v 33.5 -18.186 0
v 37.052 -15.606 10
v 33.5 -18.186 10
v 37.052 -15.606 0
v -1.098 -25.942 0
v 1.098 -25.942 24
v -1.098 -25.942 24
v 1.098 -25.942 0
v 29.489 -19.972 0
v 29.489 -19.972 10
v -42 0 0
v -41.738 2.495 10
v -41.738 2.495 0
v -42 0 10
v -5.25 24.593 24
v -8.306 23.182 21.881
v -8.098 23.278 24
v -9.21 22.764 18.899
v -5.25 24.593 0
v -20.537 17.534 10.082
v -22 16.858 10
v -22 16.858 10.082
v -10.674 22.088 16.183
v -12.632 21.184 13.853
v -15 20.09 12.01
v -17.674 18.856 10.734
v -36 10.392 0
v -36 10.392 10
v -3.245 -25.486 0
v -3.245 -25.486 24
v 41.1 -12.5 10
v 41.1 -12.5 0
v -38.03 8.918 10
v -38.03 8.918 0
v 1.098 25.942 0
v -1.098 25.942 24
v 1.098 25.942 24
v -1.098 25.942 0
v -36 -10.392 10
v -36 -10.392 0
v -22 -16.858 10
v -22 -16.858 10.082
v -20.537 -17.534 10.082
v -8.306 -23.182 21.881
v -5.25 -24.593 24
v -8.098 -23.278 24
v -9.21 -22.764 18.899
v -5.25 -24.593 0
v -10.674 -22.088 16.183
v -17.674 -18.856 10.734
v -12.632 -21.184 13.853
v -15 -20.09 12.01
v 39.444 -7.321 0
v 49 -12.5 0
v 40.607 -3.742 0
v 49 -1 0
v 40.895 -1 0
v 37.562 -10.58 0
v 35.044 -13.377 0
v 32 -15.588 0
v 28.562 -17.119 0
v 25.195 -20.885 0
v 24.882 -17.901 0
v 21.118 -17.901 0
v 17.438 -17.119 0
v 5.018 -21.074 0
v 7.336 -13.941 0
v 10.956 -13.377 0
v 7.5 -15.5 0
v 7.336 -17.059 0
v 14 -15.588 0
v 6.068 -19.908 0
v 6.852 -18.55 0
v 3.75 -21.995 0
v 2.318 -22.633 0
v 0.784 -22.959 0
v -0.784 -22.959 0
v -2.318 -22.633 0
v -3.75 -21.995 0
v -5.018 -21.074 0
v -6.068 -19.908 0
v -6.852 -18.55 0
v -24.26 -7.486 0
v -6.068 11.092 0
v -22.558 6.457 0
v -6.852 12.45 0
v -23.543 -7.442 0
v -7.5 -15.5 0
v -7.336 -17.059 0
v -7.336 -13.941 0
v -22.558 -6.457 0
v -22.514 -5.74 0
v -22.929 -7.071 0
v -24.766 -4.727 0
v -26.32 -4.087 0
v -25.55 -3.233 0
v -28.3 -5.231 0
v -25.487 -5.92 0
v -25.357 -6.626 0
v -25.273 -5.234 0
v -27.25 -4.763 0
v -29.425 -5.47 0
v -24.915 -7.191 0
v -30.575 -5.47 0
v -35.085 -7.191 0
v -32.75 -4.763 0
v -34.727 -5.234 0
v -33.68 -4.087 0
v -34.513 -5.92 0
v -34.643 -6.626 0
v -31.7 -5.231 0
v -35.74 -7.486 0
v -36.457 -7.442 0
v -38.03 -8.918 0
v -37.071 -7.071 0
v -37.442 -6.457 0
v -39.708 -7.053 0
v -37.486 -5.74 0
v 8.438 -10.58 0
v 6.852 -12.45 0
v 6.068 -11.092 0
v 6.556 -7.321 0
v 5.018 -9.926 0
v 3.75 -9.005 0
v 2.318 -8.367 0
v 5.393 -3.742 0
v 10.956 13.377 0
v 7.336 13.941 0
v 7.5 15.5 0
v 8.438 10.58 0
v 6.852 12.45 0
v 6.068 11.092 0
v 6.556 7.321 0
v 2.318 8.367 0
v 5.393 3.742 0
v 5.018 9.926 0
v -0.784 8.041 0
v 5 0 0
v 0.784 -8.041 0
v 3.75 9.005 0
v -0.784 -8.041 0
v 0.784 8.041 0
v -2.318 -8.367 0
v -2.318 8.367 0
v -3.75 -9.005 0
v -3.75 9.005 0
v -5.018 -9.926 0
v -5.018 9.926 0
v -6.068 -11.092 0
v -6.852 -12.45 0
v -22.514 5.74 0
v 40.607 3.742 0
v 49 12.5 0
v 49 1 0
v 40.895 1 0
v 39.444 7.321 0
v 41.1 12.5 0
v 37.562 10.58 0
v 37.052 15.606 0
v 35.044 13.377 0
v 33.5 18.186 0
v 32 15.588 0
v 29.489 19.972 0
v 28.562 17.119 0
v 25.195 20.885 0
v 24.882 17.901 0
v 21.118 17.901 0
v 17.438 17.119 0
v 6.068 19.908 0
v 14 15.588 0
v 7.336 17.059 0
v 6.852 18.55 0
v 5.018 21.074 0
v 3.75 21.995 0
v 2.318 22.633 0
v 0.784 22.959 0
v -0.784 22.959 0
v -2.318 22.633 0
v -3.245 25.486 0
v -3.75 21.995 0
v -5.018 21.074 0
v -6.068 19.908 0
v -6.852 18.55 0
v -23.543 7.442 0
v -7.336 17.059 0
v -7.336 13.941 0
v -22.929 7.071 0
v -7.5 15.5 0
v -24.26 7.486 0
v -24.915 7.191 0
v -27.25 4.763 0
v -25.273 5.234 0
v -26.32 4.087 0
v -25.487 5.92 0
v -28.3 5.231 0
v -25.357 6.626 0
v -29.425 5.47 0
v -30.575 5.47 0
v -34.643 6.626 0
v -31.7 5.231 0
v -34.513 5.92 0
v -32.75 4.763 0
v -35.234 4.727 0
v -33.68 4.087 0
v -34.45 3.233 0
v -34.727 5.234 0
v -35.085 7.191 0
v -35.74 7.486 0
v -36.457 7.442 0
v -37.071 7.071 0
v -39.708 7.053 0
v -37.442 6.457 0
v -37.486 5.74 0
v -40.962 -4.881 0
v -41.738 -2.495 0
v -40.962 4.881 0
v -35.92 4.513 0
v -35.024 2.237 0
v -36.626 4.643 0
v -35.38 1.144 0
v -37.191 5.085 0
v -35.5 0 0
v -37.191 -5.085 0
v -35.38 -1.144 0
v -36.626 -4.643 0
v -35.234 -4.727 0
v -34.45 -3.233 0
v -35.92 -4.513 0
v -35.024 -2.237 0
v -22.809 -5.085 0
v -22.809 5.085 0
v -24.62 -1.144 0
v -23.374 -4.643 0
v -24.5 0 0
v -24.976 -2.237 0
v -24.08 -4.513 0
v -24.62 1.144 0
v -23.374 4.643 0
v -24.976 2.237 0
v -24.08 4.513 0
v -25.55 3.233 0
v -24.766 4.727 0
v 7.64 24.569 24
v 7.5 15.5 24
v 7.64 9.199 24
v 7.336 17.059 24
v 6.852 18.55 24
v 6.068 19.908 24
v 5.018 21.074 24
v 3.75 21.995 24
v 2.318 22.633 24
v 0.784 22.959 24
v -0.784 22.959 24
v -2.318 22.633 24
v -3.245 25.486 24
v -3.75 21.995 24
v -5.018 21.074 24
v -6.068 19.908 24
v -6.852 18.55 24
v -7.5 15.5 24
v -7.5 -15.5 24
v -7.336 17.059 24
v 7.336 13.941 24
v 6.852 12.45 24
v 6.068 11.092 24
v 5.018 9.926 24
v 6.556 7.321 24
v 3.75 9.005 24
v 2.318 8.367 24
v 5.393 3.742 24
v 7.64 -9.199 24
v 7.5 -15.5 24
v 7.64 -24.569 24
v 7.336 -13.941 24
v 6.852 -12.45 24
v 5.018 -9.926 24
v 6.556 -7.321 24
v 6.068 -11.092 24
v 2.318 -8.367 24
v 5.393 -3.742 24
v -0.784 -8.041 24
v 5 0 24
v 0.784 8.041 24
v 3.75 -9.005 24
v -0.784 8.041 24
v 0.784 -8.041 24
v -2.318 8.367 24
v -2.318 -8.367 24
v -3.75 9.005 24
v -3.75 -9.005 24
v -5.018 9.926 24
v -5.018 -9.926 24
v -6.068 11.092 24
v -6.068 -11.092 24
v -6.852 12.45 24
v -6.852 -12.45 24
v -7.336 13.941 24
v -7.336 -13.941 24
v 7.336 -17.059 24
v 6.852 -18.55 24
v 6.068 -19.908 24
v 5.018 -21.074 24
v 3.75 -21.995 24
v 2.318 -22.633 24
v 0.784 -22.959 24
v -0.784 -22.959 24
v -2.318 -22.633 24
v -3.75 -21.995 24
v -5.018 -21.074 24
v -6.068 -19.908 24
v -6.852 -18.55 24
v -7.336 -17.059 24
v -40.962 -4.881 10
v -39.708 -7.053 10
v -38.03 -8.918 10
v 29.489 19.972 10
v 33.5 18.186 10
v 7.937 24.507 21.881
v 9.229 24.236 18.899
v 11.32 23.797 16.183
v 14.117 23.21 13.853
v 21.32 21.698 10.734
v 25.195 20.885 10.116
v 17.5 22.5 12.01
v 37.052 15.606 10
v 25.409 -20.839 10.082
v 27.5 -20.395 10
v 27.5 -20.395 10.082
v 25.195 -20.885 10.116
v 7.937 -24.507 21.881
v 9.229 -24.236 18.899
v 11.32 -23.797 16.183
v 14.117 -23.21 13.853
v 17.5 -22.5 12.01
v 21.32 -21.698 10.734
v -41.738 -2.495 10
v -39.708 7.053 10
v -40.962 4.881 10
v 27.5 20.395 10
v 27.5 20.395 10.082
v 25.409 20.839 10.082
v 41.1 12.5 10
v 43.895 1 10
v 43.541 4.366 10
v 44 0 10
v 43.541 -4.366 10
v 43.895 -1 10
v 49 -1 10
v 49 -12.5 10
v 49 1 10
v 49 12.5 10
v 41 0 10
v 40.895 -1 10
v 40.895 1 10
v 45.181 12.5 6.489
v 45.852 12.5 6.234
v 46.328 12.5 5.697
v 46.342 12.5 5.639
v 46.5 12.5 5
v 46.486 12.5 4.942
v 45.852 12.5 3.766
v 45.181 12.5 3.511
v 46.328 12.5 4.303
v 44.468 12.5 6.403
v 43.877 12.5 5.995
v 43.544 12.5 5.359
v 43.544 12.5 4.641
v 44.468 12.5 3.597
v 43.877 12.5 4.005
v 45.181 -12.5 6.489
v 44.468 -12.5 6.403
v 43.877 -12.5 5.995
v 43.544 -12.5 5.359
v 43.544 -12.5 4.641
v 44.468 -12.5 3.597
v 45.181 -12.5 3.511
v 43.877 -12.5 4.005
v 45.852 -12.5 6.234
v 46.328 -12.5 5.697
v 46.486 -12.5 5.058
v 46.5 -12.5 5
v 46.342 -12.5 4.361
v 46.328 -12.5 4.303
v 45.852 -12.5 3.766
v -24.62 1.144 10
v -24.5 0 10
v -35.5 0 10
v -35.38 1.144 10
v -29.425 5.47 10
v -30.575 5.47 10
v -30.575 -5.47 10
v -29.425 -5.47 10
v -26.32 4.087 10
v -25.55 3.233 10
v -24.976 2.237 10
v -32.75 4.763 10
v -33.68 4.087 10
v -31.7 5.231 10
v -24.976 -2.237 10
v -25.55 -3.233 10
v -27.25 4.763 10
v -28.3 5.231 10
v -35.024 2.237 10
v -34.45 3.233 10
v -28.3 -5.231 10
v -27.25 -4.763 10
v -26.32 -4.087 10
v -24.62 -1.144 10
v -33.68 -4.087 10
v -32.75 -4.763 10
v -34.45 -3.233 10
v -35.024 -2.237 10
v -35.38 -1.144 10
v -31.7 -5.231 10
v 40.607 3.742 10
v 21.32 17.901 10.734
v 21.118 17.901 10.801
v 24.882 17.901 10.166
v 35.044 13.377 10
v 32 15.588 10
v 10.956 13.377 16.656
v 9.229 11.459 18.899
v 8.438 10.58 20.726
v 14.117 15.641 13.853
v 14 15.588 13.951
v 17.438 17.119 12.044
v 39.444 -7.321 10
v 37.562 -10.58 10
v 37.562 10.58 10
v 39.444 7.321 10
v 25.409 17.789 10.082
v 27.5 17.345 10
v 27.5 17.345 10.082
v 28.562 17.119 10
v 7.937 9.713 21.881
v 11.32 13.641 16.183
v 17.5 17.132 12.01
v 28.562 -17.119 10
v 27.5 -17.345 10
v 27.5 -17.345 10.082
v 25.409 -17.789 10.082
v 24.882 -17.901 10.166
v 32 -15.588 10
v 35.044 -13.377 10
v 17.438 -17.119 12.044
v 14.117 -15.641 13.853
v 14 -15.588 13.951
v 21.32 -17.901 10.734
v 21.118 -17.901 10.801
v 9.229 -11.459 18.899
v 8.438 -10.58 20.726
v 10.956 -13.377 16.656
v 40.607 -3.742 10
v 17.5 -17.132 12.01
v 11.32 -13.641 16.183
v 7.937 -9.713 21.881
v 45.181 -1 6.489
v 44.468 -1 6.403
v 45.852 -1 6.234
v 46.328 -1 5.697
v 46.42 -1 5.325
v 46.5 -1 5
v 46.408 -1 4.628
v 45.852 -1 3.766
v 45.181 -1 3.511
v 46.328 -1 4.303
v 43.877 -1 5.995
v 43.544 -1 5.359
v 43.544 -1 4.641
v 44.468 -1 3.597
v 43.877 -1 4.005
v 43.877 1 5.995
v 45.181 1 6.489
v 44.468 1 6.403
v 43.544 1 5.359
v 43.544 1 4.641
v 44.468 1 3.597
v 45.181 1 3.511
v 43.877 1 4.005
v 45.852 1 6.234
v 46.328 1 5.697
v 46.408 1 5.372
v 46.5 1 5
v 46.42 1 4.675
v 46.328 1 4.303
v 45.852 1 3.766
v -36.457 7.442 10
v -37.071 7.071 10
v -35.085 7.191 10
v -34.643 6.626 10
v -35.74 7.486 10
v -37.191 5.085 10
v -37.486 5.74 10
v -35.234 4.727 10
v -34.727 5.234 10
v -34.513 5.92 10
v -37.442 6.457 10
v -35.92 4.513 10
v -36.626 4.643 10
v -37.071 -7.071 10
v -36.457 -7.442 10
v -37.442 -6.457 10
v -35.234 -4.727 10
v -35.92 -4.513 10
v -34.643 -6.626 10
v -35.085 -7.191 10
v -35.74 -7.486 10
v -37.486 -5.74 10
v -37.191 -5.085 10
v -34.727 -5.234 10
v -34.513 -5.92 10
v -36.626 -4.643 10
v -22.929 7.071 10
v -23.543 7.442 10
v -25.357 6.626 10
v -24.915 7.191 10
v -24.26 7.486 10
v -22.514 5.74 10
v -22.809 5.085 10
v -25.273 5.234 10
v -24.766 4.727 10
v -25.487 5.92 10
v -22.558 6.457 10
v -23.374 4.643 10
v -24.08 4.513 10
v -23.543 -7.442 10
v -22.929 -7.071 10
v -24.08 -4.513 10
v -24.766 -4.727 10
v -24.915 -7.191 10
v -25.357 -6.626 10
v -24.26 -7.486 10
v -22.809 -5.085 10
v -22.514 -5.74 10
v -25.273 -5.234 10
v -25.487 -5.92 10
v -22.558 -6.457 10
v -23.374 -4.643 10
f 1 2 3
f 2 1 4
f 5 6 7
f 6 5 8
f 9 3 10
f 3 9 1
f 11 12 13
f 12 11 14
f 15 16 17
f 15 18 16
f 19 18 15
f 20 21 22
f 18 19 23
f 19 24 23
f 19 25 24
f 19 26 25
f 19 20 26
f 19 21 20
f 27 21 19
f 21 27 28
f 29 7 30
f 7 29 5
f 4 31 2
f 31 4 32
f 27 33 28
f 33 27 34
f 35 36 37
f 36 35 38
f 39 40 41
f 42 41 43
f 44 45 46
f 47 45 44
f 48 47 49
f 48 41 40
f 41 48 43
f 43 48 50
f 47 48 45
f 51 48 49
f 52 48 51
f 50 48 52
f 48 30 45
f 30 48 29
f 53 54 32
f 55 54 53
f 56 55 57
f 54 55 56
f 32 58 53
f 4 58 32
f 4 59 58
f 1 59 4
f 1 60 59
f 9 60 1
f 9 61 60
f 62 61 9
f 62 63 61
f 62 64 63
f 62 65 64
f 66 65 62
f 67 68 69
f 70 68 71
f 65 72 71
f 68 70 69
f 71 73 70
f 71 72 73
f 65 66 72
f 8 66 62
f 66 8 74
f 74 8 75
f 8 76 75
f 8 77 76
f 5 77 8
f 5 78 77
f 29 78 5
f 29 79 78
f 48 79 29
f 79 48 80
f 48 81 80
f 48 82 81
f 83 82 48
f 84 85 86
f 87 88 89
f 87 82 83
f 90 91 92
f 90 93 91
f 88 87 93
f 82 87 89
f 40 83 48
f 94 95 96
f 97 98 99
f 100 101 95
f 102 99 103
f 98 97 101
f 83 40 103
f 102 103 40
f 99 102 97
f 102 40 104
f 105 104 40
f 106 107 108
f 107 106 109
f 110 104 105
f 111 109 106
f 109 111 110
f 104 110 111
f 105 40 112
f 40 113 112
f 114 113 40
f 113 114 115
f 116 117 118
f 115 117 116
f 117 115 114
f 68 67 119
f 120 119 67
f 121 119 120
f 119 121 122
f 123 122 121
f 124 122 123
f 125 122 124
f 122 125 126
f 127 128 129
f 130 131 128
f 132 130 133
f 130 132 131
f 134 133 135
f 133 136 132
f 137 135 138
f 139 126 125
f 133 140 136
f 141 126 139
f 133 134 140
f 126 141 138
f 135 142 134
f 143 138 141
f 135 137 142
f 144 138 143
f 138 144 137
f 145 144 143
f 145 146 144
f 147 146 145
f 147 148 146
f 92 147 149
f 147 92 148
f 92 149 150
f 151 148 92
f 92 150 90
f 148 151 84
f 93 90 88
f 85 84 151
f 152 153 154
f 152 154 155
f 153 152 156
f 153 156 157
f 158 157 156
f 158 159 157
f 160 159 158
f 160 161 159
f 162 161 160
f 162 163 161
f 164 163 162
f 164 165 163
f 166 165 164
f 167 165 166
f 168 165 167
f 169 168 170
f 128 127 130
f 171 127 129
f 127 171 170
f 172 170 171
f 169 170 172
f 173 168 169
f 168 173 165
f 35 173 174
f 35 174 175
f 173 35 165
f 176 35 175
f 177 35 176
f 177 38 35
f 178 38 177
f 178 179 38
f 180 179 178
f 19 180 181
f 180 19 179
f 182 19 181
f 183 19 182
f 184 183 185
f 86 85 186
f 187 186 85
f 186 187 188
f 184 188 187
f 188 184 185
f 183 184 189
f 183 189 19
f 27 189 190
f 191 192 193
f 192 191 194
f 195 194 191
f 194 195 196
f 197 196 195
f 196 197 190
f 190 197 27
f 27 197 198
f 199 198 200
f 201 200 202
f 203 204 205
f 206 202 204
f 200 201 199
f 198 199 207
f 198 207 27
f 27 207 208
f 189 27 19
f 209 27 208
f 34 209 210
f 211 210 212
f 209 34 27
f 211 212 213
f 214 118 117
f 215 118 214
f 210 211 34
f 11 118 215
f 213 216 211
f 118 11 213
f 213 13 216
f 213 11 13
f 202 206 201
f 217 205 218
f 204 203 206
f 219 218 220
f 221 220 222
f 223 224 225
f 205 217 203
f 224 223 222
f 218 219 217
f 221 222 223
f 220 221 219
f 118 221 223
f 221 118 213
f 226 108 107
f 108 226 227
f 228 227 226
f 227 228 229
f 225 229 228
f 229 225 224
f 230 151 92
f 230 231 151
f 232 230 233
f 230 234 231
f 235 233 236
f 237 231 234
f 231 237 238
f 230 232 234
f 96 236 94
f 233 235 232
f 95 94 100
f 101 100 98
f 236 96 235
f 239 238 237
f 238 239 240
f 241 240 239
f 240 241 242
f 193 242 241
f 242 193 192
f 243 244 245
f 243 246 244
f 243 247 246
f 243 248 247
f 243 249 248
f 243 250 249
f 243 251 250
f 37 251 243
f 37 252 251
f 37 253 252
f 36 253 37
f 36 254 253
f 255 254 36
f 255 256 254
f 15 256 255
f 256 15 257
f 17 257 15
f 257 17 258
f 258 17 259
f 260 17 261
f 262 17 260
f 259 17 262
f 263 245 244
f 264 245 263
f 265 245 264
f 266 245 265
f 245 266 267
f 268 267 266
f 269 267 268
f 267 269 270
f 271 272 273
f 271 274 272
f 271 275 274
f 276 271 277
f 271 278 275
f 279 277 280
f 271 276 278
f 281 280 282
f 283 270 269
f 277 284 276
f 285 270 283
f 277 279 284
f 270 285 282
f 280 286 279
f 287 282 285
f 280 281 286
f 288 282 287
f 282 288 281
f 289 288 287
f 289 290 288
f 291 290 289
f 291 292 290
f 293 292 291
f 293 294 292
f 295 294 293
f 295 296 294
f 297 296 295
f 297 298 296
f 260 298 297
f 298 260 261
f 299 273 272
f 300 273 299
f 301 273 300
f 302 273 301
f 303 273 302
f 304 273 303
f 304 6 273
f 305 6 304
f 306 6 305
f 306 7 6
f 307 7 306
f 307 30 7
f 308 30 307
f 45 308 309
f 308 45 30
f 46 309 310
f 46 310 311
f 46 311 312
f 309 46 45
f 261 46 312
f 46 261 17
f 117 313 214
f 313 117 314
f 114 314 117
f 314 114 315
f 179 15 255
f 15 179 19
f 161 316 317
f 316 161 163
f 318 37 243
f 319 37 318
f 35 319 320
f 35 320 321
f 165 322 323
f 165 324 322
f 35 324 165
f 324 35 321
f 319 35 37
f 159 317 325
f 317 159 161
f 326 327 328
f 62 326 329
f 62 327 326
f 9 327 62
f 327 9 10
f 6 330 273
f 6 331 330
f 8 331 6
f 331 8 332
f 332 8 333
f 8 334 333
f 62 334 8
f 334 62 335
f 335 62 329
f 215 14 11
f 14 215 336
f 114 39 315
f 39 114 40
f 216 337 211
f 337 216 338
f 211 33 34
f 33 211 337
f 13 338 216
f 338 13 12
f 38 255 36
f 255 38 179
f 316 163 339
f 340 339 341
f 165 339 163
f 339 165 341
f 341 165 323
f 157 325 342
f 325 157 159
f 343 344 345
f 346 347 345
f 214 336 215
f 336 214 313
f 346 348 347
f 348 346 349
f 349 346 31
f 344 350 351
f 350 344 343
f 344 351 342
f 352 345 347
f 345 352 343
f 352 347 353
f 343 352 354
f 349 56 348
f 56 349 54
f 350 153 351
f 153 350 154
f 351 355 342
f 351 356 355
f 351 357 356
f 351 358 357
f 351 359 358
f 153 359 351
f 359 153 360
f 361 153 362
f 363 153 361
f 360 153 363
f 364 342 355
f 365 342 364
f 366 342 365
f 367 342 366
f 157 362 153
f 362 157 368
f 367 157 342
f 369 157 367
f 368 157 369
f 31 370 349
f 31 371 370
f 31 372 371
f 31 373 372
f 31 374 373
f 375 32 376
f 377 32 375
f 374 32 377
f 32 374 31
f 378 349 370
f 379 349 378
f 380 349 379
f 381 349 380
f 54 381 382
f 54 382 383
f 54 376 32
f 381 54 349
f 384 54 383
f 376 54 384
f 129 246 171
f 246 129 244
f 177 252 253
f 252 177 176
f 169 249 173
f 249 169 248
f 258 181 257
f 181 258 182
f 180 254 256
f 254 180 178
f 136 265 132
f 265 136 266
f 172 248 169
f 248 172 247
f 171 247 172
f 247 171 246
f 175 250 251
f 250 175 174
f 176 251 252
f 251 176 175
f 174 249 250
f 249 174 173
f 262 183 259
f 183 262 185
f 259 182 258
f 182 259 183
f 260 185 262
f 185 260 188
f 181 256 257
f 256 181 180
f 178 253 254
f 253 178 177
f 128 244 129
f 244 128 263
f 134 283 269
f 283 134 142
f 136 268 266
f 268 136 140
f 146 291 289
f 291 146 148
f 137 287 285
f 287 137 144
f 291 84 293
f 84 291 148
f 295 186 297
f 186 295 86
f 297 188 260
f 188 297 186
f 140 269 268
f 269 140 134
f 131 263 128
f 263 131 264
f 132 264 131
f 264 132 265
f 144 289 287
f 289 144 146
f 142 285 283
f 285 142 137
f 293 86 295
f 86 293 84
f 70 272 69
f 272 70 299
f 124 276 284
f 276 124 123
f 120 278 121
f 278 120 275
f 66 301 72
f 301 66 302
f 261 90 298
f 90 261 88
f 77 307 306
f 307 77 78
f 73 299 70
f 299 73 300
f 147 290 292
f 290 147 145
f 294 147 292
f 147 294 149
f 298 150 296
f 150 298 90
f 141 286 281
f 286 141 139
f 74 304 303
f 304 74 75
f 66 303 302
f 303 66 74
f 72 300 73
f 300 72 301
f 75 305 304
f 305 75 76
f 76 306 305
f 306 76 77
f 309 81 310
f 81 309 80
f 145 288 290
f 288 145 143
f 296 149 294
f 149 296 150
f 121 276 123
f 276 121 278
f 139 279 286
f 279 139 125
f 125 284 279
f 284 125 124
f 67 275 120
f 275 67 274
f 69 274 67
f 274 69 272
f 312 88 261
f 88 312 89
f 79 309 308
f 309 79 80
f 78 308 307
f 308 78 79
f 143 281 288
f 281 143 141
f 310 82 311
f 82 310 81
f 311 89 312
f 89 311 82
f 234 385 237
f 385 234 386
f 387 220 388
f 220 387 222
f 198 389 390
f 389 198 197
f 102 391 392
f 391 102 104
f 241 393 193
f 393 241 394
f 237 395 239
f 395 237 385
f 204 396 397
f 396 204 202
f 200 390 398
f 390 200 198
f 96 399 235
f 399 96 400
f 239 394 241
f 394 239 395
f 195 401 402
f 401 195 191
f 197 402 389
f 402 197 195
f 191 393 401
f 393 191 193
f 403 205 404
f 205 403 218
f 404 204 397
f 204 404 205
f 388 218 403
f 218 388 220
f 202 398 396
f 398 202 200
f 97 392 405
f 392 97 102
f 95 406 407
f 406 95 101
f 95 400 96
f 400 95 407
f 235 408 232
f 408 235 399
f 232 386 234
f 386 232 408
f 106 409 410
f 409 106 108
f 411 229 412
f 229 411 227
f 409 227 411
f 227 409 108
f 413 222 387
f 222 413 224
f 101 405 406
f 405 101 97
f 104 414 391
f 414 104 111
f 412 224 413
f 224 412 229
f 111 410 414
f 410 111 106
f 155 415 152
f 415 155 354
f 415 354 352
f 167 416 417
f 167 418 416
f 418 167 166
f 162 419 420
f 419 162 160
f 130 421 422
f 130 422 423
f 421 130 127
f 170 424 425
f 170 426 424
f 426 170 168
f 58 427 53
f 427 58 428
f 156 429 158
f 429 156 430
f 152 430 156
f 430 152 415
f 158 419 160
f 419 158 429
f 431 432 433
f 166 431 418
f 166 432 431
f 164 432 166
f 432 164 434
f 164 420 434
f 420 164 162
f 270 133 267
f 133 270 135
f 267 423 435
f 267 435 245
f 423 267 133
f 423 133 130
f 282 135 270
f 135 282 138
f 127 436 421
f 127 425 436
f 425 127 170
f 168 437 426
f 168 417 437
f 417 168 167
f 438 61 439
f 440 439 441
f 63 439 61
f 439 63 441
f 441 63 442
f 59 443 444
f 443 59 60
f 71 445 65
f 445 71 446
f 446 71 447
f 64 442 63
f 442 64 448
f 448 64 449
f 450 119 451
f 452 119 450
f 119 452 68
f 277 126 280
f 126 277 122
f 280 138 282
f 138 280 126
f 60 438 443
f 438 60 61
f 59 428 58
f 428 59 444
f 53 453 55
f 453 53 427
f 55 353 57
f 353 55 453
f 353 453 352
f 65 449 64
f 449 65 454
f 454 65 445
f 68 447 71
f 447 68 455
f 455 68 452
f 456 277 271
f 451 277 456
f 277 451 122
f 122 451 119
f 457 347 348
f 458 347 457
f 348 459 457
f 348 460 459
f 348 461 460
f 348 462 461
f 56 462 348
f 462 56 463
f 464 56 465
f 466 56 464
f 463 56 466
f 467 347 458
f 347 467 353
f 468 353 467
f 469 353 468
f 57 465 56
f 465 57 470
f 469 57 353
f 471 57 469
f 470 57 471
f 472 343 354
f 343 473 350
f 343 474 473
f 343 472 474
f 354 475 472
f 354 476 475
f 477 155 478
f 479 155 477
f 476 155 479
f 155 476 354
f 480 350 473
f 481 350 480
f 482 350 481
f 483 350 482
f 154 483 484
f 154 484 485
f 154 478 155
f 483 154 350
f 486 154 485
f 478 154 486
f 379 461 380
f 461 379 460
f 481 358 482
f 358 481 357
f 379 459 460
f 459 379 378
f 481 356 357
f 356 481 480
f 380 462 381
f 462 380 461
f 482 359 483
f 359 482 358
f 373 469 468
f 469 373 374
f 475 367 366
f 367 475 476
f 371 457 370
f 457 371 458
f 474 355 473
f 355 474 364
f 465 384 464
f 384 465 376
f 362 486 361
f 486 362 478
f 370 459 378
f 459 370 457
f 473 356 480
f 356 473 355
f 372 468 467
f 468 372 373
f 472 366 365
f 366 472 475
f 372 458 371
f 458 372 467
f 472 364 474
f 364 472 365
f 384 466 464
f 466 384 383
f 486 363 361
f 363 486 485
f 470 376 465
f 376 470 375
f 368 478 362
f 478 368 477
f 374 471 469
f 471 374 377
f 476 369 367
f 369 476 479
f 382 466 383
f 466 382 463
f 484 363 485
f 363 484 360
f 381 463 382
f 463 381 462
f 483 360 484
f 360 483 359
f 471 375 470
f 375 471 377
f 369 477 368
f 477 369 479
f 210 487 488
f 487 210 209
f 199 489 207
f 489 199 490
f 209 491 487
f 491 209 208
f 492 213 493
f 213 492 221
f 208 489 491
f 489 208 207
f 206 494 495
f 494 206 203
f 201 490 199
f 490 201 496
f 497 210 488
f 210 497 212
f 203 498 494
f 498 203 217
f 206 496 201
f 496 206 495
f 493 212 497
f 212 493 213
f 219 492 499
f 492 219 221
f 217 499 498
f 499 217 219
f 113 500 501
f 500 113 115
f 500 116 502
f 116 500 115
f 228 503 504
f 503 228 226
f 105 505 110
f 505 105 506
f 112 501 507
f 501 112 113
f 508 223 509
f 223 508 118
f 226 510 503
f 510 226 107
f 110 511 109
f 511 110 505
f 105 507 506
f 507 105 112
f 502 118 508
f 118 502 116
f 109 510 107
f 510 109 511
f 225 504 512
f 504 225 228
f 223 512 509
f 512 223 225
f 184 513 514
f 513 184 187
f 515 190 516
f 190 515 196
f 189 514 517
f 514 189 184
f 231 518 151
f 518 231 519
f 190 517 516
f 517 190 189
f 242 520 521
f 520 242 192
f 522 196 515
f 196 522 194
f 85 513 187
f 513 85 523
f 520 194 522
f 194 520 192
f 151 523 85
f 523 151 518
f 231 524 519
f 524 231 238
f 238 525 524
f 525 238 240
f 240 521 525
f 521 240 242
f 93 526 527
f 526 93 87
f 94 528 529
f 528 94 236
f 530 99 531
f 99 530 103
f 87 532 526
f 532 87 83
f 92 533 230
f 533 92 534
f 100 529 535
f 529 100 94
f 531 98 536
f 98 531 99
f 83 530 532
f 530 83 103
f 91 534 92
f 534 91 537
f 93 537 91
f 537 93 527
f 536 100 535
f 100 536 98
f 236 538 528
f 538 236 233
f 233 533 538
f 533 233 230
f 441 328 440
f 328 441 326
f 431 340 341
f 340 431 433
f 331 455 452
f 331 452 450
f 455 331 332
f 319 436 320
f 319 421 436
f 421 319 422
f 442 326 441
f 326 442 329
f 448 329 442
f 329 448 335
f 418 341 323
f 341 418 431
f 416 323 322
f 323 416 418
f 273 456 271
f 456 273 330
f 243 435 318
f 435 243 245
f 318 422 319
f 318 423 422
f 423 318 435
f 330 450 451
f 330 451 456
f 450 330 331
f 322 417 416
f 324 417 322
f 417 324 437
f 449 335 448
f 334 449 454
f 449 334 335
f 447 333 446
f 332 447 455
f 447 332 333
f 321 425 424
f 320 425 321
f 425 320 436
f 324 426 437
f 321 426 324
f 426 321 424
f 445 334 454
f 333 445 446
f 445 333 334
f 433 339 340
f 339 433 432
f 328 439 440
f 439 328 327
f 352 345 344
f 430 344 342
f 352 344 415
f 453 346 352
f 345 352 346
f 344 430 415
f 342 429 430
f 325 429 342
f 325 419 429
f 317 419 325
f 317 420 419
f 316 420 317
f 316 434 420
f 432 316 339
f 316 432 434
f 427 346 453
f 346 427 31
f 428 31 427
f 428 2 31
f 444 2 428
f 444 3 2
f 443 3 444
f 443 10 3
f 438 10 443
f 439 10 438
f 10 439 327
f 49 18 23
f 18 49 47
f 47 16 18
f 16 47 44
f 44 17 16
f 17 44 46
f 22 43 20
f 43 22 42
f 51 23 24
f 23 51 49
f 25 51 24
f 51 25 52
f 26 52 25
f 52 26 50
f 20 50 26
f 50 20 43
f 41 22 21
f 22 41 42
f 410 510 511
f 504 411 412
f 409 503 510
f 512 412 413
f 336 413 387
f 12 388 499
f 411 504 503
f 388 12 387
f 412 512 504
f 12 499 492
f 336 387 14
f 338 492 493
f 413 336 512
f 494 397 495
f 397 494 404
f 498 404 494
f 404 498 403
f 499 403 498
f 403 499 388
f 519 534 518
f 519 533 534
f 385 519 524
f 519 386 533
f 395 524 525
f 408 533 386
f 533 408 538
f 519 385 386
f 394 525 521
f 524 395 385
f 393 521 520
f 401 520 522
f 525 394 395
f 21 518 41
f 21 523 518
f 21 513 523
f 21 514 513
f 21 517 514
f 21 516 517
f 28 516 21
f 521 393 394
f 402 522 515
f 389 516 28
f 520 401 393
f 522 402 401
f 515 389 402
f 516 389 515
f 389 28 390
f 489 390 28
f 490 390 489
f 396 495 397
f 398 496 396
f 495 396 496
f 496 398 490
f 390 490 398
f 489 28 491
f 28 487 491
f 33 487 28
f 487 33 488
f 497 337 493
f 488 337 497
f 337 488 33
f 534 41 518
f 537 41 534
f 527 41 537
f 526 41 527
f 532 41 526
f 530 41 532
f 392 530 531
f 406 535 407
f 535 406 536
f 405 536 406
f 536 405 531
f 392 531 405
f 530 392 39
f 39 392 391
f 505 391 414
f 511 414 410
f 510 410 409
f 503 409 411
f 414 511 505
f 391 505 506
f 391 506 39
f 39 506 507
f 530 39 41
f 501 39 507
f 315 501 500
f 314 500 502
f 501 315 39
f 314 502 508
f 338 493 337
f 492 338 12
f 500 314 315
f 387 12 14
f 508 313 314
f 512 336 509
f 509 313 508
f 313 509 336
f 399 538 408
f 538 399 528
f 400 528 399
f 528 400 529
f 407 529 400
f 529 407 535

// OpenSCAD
$fs=.75;

difference() {
	union() {
		hull() {
			union() {
				translate(v = [0, 15.5000000000, 0]) {
					cylinder(d = 21.0000000000, h = 24.0000000000);
				}
				mirror(v = [0, 1, 0]) {
					translate(v = [0, 15.5000000000, 0]) {
						cylinder(d = 21.0000000000, h = 24.0000000000);
					}
				}
				translate(v = [-30.0000000000, 0, 0]) {
					cylinder(d = 24.0000000000, h = 24.0000000000);
				}
				translate(v = [23.0000000000, 0, 0]) {
					cylinder(d = 42.0000000000, h = 24.0000000000);
				}
				translate(v = [41.0000000000, 0, 0]) {
					translate(v = [0, -12.5000000000, 0]) {
						cube(size = [0.1000000000, 25, 10.0000000000]);
					}
				}
			}
		}
		translate(v = [41.0000000000, 0, 0]) {
			translate(v = [0, -12.5000000000, 0]) {
				cube(size = [8, 25, 10.0000000000]);
			}
		}
	}
	union() {
		translate(v = [0, 15.5000000000, 0]) {
			cylinder(d = 15.0000000000, h = 24.0000000000);
		}
		mirror(v = [0, 1, 0]) {
			translate(v = [0, 15.5000000000, 0]) {
				cylinder(d = 15.0000000000, h = 24.0000000000);
			}
		}
		translate(v = [-30.0000000000, 0, 0]) {
			cylinder(d = 11.0000000000, h = 24.0000000000);
		}
		translate(v = [23.0000000000, 0, 0]) {
			cylinder(d = 36.0000000000, h = 24.0000000000);
		}
		translate(v = [43.0000000000, 0, 0]) {
			translate(v = [-10.0000000000, -1.0000000000, 0]) {
				cube(size = [20, 2, 10.0000000000]);
			}
		}
		#translate(v = [45.0000000000, 0, 5.0000000000]) {
			rotate(a = [90, 0, 0]) {
				translate(v = [0, 0, -15.0000000000]) {
					cylinder(d = 3, h = 30);
				}
			}
		}
	}
	translate(v = [-30.0000000000, 0, 0]) {
		union() {
			rotate(a = [0, 0, 45]) {
				translate(v = [8.5000000000, 0, 0]) {
					cylinder(d = 3, h = 24.0000000000);
				}
			}
			mirror(v = [0, 1, 0]) {
				rotate(a = [0, 0, 45]) {
					translate(v = [8.5000000000, 0, 0]) {
						cylinder(d = 3, h = 24.0000000000);
					}
				}
			}
			mirror(v = [1, 0, 0]) {
				union() {
					rotate(a = [0, 0, 45]) {
						translate(v = [8.5000000000, 0, 0]) {
							cylinder(d = 3, h = 24.0000000000);
						}
					}
					mirror(v = [0, 1, 0]) {
						rotate(a = [0, 0, 45]) {
							translate(v = [8.5000000000, 0, 0]) {
								cylinder(d = 3, h = 24.0000000000);
							}
						}
					}
				}
			}
		}
	}
	union() {
		translate(v = [27.5000000000, 0, 25.0000000000]) {
			resize(newsize = [40, 60, 30]) {
				translate(v = [-0.0000000000, 0, 0]) {
					union() {
						difference() {
							rotate(a = [90, 0, 0]) {
								translate(v = [-0.0000000000, -0.0000000000, -50.0000000000]) {
									cylinder(d = 50.0000000000, h = 100.0000000000);
								}
							}
							translate(v = [0, -50.0000000000, -50.0000000000]) {
								cube(size = [250.0000000000, 100, 100]);
							}
						}
						translate(v = [0, -50.0000000000, -25.0000000000]) {
							cube(size = [25.0000000000, 100.0000000000, 50.0000000000]);
						}
					}
				}
			}
		}
		translate(v = [-25.5000000000, 0, 25.0000000000]) {
			mirror(v = "x") {
				resize(newsize = [35, 60, 30]) {
					translate(v = [-5.0000000000, 0, 0]) {
						union() {
							difference() {
								rotate(a = [90, 0, 0]) {
									translate(v = [-0.0000000000, -0.0000000000, -50.0000000000]) {
										cylinder(d = 40.0000000000, h = 100.0000000000);
									}
								}
								translate(v = [0, -50.0000000000, -50.0000000000]) {
									cube(size = [200.0000000000, 100, 100]);
								}
							}
							translate(v = [0, -50.0000000000, -20.0000000000]) {
								cube(size = [30.0000000000, 100.0000000000, 40.0000000000]);
							}
						}
					}
				}
			}
		}
	}
}
/***********************************************
*********      SolidPython code:      **********
************************************************
 
from solid import *
from solid import extensions

class Object:
    pass


rod=Object()
rod.d=8.0

nema17 = Object()
nema17.side = 43.
nema17.holeDistance = 31.0
nema17.screwD= 3.
nema17.height = 34. #47 for the long ones, 34 for the short ones


bearing = Object()
bearing.outD = 15.0
bearing.length = 24.0

# to place the rod supports on top of the nema17
supportDepth=10
xRodHole = cylinder(d=rod.d, h=20).rot(y=90)
xSupport = ( cube([supportDepth,nema17.side,rod.d/2+1]).align('left','bottom')
             - xRodHole.move(z=-.5)
             - cylinder(d=nema17.screwD,h=12).center().move(x=5,y=nema17.holeDistance/2.).mirrorCopy('y')
           ).rot(x=180)


bearingShape = cylinder(d=bearing.outD, h= bearing.length+1).center()

#minimal y cart, z motor will be placed in between the rails
yRodDistance = 60.0 # rounding up from nema17.side + bearing.outD
wall=2.0
cartWidth = 2*bearing.length
yBearings = bearingShape.move(z=bearing.length/2).mirrorCopy('z').move(x=yRodDistance/2).mirrorCopy('x')
yCart = ( ( cylinder(d= bearing.outD + 2*wall, h= cartWidth).center().rot(x=90).move(x=yRodDistance/2).mirrorCopy('x')
          + cube([yRodDistance, cartWidth, bearing.outD/2+wall]).align('bottom').move(z=-bearing.outD/2-wall)
          + cube([yRodDistance+bearing.outD+2*wall, cartWidth, bearing.outD/2+wall]).align('top').move(z=bearing.outD/2+wall)

          ) - yBearings.rot(x=90)
            - cube([nema17.side, cartWidth, bearing.outD/2-3]).align('top')
            - cube([nema17.side, cartWidth, bearing.outD]).align('bottom')
            - cube([yRodDistance+20, cartWidth, 3]).align('bottom').move(z=-bearing.outD/2-wall)
            - cylinder(d=3,h=10).move([nema17.holeDistance/2, nema17.holeDistance/2, -bearing.outD/2]).mirrorCopy('x').mirrorCopy('y').debug()
            - cylinder(d=nema17.holeDistance, h =10).move(z=-bearing.outD/2)
          )



#supports for holding the y rods in from the x bearings
bearingCover = cylinder(d= bearing.outD + 2*wall, h= bearing.length).center().rot(y=90)
baseBlock = hull( bearingCover
                  + cube([bearing.outD+2,10,bearing.outD+2]).align('back').move(y=bearing.outD/2+wall))
capScrews = cylinder(d=3., h=bearing.outD + 2*wall).center().move(x=rod.d/2+3./2+1,y=12).mirrorCopy('x')
rodHole = cylinder(d=rod.d,h=10).rot(x=-90).move(y=bearing.outD/2+wall)
#capTopBase = cube([bearing.length, 11, bearing.outD]).center('x').move(y=bearing.outD/2+wall)
#capTopBase = polygon([[0,0],[0,10],[10,10],[10,-3]]).linear_extrude(bearing.length,True).rot(y=-90).move(y=bearing.outD/2+wall)
capTopBase = cube([bearing.length, 20, bearing.outD]).center('x')-bearingCover

baseSupport = baseBlock - rodHole - capScrews

ySupport = part(cylinder(d= bearing.outD + 2*wall, h= yRodDistance + bearing.length).center().rot(y=90)
                 - hole(cylinder(d= bearing.outD, h= yRodDistance + bearing.length).center().rot(y=90))
                 + ( baseSupport
                     * cube(50).align('top')
                   ).move(x=yRodDistance/2).mirrorCopy('x')
                 - cube(1000).align('top').move(z=-bearing.outD/2+1)
                 )

ySupportRodCap = ( baseSupport
                * capTopBase
                - cube([bearing.length,50,1]).align('bottom')
                - cube([bearing.length,10,10]).center('xy')
                )

#support for z rods placed on the falt surface of the yCart above the bearings
zRodDistance = 31.
rodSupport = (cylinder(d=rod.d + 3, h=6) - cylinder(d=rod.d, h=6+1)).move(y=zRodDistance / 2)
beltGuide = ( cube([bearing.outD, bearing.length-zRodDistance/2, 6]).center('x')
              - cylinder(d=rod.d + 6,h=6+1)
              - cube([1,20,6+1]).center('x')).move(y=zRodDistance/2)
zSupport = ( cube([bearing.outD,2*bearing.length,wall]).center('xy')
             + rodSupport.move(z=wall).mirrorCopy('y')
             + beltGuide.move(z=wall).mirrorCopy('y')
           )

zstepper = cube([nema17.side,nema17.side,34]).center('xy').move(z=-bearing.outD/2).color('gray')


yCartZSupport = yCart + zSupport.move(x=yRodDistance/2 ,z=bearing.outD/2)


def xTailBase(h):
    return hull([cylinder(d=3+4,h=h).move(x= 4, y=3./2+rod.d/2+1).mirrorCopy('y'),
                 cylinder(d=4+6, h=h).move(x=-3)
                ]).move(z=.5)

capScrewHoles = cylinder(d=3,h=100).center().move(x= 4, y=3./2+rod.d/2+1).mirrorCopy('y')
pulleyScrewHole = cylinder(d=4,h=100).center().move(x= -3)
nutCuts = (cylinder(d=3+4,h=nema17.height-7).move(x= 4, y=3./2+rod.d/2+1).mirrorCopy('y')
          + cylinder(d=4+6, h=nema17.height-7).move(x=-3)).move(z=7)
xTailSupport = ( xTailBase(nema17.height+1.5+rod.d/2.)
                 - xRodHole
                 - capScrewHoles
                 - pulleyScrewHole
                 - nutCuts
               )
xTailCap = ( xTailBase(7)
             - xRodHole
             - capScrewHoles
             - pulleyScrewHole
            )


zTopH=5.
zBearingD = 16.
zTopBase = hull(cylinder(d=rod.d+6,h=zTopH).move(y=zRodDistance/2).mirrorCopy('y')
            +cylinder(d=zBearingD+6,h=zTopH).move(x=-yRodDistance/2))
zHoles =  (cylinder(d=rod.d,h=zTopH).move(y=zRodDistance/2).mirrorCopy('y')
           + cylinder(d=zBearingD,h=zTopH).move(x=-yRodDistance/2))
zTop = zTopBase - zHoles




zNutD0 = 10.
zNutD1 = 22.
zNutH0 = 10.
drillD = 36.

base = ( hull(cylinder(d=bearing.outD+6,h=bearing.length).move(y=zRodDistance/2).mirrorCopy('y')
              + cylinder(d=zNutD1+2,h=bearing.length).move(x=-yRodDistance/2)
              + cylinder(d=drillD+6,h=bearing.length).move(x=drillD/2+5)
              + cube([.1,25,zNutH0]).center('y').move(x=drillD+5)
              )
            + cube([8,25,zNutH0]).center('y').move(x=drillD+5)
        )

holes =  (cylinder(d=bearing.outD, h=bearing.length).move(y=zRodDistance/2).mirrorCopy('y')
           + cylinder(d=zNutD0+1,h=bearing.length).move(x=-yRodDistance/2)
           + cylinder(d=drillD,h=bearing.length).move(x=drillD/2+5)
           + cube([20,2,zNutH0]).center('xy').move(x=drillD+7)
           + cylinder(d=3,h=30).center().rot(x=90).move(x=drillD+9,z=zNutH0/2).debug()
           )

zNutDrills = cylinder(d=3,h=bearing.length).move(x=17./2).rot(z=45).mirrorCopy('y').mirrorCopy('x').move(x=-yRodDistance/2)

def ushape(p,f=.5):
    return (cylinder(d=100.*f,h=100.).center().rot(x=90)-cube([500.*f,100,100]).center('yz')
            +cube([50.*(1-f),100.,100.*f]).center('yz')

           ).move(x=(.5-f)*-50).resize(p)

pD=[40,60,30]
pN=[35,60,30]
profileCuts = (ushape(pD,.5).move(x=pD[0]/2+bearing.outD/2,z=pD[2]/2+zNutH0)+
           ushape(pN,.4).mirror('x').move(x=-pN[0]/2-bearing.outD/2,z=pN[2]/2+zNutH0)
          )

sideCuts = cube([100,20,bearing.length]).center('x').move(y=zRodDistance/2+bearing.outD/2-1).mirrorCopy('y')

zDrillCart_ = base - holes - zNutDrills  - profileCuts

zDrillCart = zDrillCart_.copy() #- sideCuts
zDrillCart0 = zDrillCart_.copy().intersection(cube([60,60,bearing.length]).center('y').move(x=-bearing.outD/2+1))

scene = zDrillCart



'''
scene = ( xSupport.move(x=-100)
          + ySupport + ySupportRodCap.move(x=-yRodDistance / 2, z=3)
          + (yCartZSupport ).move(y=50)
        )
'''
scad_render_to_file(scene, 'routerParts.scad', '$fs=.75;')

#scad_render_to_file(xSupport, 'routerParts_xSupport.scad', '$fs=.75;')
#scad_render_to_file(ySupport, 'routerParts_ySupport.scad', '$fs=.75;')
#scad_render_to_file(ySupportRodCap, 'routerParts_ySupportCap.scad', '$fs=.75;')
#scad_render_to_file(yCartZSupport, 'routerParts_yCart.scad', '$fs=.75;')
#scad_render_to_file( xTailSupport.rot(y=90), 'routerParts_xTailSupport.scad', '$fs=.75;')
#scad_render_to_file( xTailCap.rot(y=90), 'routerParts_xTailCap.scad', '$fs=.75;')
#scad_render_to_file( zTop, 'routerParts_zTop.scad', '$fs=.75;')
scad_render_to_file( zDrillCart, 'routerParts_zDrillCart.scad', '$fs=.75;')
scad_render_to_file( zDrillCart0, 'routerParts_zDrillCart0.scad', '$fs=.75;')
 
 
************************************************/
